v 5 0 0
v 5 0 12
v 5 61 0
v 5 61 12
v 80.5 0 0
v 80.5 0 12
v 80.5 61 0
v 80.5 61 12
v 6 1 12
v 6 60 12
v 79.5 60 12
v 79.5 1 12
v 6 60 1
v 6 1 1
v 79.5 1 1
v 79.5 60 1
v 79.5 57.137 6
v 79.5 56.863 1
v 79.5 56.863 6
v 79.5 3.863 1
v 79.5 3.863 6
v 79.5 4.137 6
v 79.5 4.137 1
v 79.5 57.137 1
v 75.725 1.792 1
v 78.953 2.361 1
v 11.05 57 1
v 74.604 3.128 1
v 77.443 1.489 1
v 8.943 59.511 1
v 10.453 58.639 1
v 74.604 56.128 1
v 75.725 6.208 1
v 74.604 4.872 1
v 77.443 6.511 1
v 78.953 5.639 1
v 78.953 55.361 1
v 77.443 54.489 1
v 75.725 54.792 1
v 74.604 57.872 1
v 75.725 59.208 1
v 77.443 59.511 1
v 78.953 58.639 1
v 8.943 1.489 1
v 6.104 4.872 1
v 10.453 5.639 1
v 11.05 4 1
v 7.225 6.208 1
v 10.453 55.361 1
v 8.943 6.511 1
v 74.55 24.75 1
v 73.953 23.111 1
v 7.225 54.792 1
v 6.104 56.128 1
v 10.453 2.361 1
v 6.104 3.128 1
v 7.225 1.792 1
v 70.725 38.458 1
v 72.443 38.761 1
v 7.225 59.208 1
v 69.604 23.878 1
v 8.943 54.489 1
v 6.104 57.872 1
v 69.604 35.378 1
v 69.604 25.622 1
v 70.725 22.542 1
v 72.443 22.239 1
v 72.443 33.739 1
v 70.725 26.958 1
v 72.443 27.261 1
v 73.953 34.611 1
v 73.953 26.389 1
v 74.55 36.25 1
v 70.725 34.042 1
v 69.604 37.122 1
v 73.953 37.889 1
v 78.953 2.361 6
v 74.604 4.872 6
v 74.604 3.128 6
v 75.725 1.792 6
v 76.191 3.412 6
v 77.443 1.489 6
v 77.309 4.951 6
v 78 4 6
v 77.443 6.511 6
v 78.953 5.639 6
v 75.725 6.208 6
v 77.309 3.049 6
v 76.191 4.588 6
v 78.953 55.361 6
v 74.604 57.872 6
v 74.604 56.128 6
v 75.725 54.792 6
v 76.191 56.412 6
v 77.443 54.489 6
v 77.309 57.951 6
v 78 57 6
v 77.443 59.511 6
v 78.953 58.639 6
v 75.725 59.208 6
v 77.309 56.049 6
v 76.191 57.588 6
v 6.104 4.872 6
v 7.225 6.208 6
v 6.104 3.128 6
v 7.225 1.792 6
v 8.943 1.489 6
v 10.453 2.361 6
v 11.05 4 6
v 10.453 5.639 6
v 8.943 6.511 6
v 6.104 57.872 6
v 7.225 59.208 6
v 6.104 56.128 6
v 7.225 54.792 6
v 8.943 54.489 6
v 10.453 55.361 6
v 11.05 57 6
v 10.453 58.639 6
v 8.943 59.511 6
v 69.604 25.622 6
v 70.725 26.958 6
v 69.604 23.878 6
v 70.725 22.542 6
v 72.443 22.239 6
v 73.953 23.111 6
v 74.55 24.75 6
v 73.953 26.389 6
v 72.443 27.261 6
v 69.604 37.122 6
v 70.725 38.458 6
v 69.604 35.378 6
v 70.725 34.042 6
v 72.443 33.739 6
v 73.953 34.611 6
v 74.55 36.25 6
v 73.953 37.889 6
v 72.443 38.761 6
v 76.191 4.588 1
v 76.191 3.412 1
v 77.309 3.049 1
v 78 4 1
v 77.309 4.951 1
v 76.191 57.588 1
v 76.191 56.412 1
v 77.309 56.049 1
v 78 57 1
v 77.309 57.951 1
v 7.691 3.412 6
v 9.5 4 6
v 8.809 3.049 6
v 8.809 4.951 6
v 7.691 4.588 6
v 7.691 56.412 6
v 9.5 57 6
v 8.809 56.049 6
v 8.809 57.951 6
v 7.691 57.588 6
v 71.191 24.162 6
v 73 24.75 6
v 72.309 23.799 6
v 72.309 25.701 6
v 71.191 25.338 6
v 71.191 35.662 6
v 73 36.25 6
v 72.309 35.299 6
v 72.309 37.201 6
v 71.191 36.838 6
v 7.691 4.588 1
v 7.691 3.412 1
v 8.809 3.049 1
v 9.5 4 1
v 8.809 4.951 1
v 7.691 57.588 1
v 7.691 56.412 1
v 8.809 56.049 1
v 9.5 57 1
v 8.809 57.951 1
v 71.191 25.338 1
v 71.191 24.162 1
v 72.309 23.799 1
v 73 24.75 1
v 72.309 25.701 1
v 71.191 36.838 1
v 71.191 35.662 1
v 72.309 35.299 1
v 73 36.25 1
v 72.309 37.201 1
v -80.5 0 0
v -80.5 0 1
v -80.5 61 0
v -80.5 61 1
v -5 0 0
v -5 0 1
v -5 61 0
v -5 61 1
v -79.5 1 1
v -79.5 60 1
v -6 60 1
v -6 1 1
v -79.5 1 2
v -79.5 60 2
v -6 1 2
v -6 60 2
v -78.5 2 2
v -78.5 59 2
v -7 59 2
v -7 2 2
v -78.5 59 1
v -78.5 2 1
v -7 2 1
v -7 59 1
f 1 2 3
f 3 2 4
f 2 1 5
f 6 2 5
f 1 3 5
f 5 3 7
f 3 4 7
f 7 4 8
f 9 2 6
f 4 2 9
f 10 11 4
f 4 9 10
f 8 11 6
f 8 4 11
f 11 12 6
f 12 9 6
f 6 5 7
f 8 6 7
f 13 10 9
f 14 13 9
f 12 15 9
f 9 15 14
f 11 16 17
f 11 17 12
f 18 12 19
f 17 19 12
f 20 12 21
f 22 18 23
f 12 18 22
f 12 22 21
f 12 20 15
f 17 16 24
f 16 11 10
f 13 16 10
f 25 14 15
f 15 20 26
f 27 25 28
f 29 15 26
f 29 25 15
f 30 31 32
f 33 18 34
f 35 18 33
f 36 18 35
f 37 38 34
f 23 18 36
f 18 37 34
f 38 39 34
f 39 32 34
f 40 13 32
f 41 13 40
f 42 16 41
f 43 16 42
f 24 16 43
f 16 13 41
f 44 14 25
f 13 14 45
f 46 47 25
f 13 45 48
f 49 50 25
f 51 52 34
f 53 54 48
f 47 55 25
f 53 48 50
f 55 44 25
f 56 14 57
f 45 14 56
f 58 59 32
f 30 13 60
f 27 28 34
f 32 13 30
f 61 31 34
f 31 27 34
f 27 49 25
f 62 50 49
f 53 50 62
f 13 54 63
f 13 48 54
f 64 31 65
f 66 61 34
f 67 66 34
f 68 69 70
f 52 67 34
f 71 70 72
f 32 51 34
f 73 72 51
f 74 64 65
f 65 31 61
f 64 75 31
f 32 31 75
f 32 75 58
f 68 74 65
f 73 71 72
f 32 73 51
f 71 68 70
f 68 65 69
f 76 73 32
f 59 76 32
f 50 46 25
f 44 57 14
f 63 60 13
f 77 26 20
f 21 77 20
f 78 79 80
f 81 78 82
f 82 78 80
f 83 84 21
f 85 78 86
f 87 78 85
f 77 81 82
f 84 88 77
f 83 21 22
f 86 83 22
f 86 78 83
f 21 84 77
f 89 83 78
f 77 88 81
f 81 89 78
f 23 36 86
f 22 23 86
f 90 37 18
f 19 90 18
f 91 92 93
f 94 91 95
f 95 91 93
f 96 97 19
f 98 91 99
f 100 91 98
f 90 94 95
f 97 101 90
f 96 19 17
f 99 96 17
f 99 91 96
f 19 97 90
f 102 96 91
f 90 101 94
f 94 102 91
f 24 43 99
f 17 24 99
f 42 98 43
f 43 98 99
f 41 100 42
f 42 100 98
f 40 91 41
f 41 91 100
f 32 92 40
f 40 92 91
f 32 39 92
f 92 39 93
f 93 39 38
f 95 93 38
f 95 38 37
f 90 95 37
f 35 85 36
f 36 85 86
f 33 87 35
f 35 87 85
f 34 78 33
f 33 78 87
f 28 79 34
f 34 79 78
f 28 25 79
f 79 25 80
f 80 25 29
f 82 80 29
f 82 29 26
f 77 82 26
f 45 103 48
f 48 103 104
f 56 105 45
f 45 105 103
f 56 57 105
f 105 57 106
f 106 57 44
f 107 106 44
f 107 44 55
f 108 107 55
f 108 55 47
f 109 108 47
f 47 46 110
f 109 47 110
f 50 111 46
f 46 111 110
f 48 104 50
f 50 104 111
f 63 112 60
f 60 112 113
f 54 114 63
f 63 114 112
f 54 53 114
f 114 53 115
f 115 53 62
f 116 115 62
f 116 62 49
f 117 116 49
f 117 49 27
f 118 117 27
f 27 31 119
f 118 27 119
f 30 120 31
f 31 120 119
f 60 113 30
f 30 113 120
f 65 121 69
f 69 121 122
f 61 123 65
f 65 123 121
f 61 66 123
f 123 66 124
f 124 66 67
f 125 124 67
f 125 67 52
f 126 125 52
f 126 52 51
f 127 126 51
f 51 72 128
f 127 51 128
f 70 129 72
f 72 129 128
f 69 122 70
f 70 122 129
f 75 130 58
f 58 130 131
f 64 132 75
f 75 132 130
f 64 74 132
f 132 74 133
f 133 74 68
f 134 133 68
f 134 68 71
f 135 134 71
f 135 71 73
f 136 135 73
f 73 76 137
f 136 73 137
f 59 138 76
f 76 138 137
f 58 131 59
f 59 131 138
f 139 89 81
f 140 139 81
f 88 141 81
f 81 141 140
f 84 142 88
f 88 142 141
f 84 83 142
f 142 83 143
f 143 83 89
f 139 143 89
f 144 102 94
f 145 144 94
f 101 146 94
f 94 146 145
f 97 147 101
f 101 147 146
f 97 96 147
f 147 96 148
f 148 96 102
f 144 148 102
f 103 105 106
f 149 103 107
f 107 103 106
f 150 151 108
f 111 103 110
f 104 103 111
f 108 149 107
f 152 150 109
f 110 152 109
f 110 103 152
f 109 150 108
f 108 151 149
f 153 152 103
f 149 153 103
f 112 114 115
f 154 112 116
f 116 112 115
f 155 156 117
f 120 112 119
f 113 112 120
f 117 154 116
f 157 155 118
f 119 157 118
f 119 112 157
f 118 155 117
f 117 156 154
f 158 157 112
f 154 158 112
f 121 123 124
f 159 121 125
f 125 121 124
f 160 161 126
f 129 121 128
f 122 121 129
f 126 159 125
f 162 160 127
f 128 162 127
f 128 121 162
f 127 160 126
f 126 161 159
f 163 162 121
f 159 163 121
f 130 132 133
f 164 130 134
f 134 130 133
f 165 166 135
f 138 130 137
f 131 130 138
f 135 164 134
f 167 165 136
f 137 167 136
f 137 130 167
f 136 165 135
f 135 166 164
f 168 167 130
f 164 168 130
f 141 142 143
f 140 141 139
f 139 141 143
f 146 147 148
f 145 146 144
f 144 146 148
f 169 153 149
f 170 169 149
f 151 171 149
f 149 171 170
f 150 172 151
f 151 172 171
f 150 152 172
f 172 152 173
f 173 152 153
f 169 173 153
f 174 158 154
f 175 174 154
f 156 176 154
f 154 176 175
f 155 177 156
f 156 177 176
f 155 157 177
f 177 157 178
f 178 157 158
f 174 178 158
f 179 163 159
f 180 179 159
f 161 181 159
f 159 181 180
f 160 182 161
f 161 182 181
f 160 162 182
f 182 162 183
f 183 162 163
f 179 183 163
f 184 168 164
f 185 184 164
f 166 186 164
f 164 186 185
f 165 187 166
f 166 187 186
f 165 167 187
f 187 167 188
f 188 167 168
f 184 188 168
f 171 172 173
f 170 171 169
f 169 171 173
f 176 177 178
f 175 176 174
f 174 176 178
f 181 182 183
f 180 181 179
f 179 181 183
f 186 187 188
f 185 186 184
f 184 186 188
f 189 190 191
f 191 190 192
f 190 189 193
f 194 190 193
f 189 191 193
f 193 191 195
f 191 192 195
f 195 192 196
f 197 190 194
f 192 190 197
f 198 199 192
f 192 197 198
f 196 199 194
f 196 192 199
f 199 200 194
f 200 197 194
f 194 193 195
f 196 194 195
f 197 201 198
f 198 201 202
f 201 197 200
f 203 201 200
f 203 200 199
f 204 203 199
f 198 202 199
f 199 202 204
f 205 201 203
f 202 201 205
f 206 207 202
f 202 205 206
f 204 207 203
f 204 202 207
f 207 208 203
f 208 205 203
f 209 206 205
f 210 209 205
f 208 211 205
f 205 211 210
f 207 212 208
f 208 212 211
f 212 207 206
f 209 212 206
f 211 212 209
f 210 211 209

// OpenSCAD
delta = 0.1;
spacing = 5;

module box(l, w, h, t)
{
  t2 = t * 2;
  difference()
  {
    cube( size=[l,w,h] );
    translate([t,t,t])
      cube( size=[l-t2, w-t2, h-t]) ;
  }
}

module lid(l, w, t)
{
  t2 = t * 2;
  t4 = t * 4;
  difference()
  {
    union()
    {
      cube( size=[l, w, t] );
      translate( [t, t, t*0.5] )
        cube( size=[l-t2, w-t2, t*1.5] );
    }
    translate( [t2, t2, t] )
      cube( size=[l-t4, w-t4, t2] );
  }
}

module support(dl, dw, h, od, id, delta)
{
  //translate([dl+od/2, dw+od/2, delta])
  translate([dl, dw, delta])
    difference()
    { 
      cylinder(h=h-delta, r=od/2, $fa=30);
      translate([0,0,-delta])
        cylinder(h=h+delta, r=id/2, $fa=30);
    }
}

module case(l, w, h, t)
{
  // TBD...
  translate([spacing,0,0])
    box(l, w, h, t);
  translate([-spacing-l, 0, 0])
    lid(l, w, t);
}

// Nanode board:
nanode_length   = 72.5;
nanode_width    = 58;
nanode_hole_dia = 3;

nanode_hole_1_x = 2;
nanode_hole_1_y = 2.5;
nanode_hole_2_x = 2;
nanode_hole_2_y = 55.5;

nanode_hole_3_x = 70.5;
nanode_hole_3_y = 2.5;
nanode_hole_4_x = 70.5;
nanode_hole_4_y = 55.5;

nanode_hole_5_x = 65.5;  	// 7.0 from other end
nanode_hole_5_y = 23.25;
nanode_hole_6_x = 65.5;  	// 7.0 from other end
nanode_hole_6_y = 34.75;		// pitch 11.5

// Try it out
t = 1;		// Wall thickness
g = 0.5;       // gap around PCB
l = nanode_length+2*t+g*2;		// Length
w = nanode_width+2*t+g*2;		// Width
h = 12;		// Height
s = spacing;	// Spacing

translate([s,0,0])
{
  box(l, w, h, t);
  support(t+g+nanode_hole_1_x, t+g+nanode_hole_1_y, h*0.5, 5.1, 2, t/2); 
  support(t+g+nanode_hole_2_x, t+g+nanode_hole_2_y, h*0.5, 5.1, 2, t/2); 
  support(t+g+nanode_hole_3_x, t+g+nanode_hole_3_y, h*0.5, 5.1, 2, t/2); 
  support(t+g+nanode_hole_4_x, t+g+nanode_hole_4_y, h*0.5, 5.1, 2, t/2); 
  support(t+g+nanode_hole_5_x, t+g+nanode_hole_5_y, h*0.5, 5.1, 2, t/2); 
  support(t+g+nanode_hole_6_x, t+g+nanode_hole_6_y, h*0.5, 5.1, 2, t/2); 
}

translate([-s-l, 0, 0])
  lid(l, w, t);

//support(t+g+nanode_hole_1_x, t+g+nanode_hole_1_y, h*0.5, 5, 2, t/2); 
